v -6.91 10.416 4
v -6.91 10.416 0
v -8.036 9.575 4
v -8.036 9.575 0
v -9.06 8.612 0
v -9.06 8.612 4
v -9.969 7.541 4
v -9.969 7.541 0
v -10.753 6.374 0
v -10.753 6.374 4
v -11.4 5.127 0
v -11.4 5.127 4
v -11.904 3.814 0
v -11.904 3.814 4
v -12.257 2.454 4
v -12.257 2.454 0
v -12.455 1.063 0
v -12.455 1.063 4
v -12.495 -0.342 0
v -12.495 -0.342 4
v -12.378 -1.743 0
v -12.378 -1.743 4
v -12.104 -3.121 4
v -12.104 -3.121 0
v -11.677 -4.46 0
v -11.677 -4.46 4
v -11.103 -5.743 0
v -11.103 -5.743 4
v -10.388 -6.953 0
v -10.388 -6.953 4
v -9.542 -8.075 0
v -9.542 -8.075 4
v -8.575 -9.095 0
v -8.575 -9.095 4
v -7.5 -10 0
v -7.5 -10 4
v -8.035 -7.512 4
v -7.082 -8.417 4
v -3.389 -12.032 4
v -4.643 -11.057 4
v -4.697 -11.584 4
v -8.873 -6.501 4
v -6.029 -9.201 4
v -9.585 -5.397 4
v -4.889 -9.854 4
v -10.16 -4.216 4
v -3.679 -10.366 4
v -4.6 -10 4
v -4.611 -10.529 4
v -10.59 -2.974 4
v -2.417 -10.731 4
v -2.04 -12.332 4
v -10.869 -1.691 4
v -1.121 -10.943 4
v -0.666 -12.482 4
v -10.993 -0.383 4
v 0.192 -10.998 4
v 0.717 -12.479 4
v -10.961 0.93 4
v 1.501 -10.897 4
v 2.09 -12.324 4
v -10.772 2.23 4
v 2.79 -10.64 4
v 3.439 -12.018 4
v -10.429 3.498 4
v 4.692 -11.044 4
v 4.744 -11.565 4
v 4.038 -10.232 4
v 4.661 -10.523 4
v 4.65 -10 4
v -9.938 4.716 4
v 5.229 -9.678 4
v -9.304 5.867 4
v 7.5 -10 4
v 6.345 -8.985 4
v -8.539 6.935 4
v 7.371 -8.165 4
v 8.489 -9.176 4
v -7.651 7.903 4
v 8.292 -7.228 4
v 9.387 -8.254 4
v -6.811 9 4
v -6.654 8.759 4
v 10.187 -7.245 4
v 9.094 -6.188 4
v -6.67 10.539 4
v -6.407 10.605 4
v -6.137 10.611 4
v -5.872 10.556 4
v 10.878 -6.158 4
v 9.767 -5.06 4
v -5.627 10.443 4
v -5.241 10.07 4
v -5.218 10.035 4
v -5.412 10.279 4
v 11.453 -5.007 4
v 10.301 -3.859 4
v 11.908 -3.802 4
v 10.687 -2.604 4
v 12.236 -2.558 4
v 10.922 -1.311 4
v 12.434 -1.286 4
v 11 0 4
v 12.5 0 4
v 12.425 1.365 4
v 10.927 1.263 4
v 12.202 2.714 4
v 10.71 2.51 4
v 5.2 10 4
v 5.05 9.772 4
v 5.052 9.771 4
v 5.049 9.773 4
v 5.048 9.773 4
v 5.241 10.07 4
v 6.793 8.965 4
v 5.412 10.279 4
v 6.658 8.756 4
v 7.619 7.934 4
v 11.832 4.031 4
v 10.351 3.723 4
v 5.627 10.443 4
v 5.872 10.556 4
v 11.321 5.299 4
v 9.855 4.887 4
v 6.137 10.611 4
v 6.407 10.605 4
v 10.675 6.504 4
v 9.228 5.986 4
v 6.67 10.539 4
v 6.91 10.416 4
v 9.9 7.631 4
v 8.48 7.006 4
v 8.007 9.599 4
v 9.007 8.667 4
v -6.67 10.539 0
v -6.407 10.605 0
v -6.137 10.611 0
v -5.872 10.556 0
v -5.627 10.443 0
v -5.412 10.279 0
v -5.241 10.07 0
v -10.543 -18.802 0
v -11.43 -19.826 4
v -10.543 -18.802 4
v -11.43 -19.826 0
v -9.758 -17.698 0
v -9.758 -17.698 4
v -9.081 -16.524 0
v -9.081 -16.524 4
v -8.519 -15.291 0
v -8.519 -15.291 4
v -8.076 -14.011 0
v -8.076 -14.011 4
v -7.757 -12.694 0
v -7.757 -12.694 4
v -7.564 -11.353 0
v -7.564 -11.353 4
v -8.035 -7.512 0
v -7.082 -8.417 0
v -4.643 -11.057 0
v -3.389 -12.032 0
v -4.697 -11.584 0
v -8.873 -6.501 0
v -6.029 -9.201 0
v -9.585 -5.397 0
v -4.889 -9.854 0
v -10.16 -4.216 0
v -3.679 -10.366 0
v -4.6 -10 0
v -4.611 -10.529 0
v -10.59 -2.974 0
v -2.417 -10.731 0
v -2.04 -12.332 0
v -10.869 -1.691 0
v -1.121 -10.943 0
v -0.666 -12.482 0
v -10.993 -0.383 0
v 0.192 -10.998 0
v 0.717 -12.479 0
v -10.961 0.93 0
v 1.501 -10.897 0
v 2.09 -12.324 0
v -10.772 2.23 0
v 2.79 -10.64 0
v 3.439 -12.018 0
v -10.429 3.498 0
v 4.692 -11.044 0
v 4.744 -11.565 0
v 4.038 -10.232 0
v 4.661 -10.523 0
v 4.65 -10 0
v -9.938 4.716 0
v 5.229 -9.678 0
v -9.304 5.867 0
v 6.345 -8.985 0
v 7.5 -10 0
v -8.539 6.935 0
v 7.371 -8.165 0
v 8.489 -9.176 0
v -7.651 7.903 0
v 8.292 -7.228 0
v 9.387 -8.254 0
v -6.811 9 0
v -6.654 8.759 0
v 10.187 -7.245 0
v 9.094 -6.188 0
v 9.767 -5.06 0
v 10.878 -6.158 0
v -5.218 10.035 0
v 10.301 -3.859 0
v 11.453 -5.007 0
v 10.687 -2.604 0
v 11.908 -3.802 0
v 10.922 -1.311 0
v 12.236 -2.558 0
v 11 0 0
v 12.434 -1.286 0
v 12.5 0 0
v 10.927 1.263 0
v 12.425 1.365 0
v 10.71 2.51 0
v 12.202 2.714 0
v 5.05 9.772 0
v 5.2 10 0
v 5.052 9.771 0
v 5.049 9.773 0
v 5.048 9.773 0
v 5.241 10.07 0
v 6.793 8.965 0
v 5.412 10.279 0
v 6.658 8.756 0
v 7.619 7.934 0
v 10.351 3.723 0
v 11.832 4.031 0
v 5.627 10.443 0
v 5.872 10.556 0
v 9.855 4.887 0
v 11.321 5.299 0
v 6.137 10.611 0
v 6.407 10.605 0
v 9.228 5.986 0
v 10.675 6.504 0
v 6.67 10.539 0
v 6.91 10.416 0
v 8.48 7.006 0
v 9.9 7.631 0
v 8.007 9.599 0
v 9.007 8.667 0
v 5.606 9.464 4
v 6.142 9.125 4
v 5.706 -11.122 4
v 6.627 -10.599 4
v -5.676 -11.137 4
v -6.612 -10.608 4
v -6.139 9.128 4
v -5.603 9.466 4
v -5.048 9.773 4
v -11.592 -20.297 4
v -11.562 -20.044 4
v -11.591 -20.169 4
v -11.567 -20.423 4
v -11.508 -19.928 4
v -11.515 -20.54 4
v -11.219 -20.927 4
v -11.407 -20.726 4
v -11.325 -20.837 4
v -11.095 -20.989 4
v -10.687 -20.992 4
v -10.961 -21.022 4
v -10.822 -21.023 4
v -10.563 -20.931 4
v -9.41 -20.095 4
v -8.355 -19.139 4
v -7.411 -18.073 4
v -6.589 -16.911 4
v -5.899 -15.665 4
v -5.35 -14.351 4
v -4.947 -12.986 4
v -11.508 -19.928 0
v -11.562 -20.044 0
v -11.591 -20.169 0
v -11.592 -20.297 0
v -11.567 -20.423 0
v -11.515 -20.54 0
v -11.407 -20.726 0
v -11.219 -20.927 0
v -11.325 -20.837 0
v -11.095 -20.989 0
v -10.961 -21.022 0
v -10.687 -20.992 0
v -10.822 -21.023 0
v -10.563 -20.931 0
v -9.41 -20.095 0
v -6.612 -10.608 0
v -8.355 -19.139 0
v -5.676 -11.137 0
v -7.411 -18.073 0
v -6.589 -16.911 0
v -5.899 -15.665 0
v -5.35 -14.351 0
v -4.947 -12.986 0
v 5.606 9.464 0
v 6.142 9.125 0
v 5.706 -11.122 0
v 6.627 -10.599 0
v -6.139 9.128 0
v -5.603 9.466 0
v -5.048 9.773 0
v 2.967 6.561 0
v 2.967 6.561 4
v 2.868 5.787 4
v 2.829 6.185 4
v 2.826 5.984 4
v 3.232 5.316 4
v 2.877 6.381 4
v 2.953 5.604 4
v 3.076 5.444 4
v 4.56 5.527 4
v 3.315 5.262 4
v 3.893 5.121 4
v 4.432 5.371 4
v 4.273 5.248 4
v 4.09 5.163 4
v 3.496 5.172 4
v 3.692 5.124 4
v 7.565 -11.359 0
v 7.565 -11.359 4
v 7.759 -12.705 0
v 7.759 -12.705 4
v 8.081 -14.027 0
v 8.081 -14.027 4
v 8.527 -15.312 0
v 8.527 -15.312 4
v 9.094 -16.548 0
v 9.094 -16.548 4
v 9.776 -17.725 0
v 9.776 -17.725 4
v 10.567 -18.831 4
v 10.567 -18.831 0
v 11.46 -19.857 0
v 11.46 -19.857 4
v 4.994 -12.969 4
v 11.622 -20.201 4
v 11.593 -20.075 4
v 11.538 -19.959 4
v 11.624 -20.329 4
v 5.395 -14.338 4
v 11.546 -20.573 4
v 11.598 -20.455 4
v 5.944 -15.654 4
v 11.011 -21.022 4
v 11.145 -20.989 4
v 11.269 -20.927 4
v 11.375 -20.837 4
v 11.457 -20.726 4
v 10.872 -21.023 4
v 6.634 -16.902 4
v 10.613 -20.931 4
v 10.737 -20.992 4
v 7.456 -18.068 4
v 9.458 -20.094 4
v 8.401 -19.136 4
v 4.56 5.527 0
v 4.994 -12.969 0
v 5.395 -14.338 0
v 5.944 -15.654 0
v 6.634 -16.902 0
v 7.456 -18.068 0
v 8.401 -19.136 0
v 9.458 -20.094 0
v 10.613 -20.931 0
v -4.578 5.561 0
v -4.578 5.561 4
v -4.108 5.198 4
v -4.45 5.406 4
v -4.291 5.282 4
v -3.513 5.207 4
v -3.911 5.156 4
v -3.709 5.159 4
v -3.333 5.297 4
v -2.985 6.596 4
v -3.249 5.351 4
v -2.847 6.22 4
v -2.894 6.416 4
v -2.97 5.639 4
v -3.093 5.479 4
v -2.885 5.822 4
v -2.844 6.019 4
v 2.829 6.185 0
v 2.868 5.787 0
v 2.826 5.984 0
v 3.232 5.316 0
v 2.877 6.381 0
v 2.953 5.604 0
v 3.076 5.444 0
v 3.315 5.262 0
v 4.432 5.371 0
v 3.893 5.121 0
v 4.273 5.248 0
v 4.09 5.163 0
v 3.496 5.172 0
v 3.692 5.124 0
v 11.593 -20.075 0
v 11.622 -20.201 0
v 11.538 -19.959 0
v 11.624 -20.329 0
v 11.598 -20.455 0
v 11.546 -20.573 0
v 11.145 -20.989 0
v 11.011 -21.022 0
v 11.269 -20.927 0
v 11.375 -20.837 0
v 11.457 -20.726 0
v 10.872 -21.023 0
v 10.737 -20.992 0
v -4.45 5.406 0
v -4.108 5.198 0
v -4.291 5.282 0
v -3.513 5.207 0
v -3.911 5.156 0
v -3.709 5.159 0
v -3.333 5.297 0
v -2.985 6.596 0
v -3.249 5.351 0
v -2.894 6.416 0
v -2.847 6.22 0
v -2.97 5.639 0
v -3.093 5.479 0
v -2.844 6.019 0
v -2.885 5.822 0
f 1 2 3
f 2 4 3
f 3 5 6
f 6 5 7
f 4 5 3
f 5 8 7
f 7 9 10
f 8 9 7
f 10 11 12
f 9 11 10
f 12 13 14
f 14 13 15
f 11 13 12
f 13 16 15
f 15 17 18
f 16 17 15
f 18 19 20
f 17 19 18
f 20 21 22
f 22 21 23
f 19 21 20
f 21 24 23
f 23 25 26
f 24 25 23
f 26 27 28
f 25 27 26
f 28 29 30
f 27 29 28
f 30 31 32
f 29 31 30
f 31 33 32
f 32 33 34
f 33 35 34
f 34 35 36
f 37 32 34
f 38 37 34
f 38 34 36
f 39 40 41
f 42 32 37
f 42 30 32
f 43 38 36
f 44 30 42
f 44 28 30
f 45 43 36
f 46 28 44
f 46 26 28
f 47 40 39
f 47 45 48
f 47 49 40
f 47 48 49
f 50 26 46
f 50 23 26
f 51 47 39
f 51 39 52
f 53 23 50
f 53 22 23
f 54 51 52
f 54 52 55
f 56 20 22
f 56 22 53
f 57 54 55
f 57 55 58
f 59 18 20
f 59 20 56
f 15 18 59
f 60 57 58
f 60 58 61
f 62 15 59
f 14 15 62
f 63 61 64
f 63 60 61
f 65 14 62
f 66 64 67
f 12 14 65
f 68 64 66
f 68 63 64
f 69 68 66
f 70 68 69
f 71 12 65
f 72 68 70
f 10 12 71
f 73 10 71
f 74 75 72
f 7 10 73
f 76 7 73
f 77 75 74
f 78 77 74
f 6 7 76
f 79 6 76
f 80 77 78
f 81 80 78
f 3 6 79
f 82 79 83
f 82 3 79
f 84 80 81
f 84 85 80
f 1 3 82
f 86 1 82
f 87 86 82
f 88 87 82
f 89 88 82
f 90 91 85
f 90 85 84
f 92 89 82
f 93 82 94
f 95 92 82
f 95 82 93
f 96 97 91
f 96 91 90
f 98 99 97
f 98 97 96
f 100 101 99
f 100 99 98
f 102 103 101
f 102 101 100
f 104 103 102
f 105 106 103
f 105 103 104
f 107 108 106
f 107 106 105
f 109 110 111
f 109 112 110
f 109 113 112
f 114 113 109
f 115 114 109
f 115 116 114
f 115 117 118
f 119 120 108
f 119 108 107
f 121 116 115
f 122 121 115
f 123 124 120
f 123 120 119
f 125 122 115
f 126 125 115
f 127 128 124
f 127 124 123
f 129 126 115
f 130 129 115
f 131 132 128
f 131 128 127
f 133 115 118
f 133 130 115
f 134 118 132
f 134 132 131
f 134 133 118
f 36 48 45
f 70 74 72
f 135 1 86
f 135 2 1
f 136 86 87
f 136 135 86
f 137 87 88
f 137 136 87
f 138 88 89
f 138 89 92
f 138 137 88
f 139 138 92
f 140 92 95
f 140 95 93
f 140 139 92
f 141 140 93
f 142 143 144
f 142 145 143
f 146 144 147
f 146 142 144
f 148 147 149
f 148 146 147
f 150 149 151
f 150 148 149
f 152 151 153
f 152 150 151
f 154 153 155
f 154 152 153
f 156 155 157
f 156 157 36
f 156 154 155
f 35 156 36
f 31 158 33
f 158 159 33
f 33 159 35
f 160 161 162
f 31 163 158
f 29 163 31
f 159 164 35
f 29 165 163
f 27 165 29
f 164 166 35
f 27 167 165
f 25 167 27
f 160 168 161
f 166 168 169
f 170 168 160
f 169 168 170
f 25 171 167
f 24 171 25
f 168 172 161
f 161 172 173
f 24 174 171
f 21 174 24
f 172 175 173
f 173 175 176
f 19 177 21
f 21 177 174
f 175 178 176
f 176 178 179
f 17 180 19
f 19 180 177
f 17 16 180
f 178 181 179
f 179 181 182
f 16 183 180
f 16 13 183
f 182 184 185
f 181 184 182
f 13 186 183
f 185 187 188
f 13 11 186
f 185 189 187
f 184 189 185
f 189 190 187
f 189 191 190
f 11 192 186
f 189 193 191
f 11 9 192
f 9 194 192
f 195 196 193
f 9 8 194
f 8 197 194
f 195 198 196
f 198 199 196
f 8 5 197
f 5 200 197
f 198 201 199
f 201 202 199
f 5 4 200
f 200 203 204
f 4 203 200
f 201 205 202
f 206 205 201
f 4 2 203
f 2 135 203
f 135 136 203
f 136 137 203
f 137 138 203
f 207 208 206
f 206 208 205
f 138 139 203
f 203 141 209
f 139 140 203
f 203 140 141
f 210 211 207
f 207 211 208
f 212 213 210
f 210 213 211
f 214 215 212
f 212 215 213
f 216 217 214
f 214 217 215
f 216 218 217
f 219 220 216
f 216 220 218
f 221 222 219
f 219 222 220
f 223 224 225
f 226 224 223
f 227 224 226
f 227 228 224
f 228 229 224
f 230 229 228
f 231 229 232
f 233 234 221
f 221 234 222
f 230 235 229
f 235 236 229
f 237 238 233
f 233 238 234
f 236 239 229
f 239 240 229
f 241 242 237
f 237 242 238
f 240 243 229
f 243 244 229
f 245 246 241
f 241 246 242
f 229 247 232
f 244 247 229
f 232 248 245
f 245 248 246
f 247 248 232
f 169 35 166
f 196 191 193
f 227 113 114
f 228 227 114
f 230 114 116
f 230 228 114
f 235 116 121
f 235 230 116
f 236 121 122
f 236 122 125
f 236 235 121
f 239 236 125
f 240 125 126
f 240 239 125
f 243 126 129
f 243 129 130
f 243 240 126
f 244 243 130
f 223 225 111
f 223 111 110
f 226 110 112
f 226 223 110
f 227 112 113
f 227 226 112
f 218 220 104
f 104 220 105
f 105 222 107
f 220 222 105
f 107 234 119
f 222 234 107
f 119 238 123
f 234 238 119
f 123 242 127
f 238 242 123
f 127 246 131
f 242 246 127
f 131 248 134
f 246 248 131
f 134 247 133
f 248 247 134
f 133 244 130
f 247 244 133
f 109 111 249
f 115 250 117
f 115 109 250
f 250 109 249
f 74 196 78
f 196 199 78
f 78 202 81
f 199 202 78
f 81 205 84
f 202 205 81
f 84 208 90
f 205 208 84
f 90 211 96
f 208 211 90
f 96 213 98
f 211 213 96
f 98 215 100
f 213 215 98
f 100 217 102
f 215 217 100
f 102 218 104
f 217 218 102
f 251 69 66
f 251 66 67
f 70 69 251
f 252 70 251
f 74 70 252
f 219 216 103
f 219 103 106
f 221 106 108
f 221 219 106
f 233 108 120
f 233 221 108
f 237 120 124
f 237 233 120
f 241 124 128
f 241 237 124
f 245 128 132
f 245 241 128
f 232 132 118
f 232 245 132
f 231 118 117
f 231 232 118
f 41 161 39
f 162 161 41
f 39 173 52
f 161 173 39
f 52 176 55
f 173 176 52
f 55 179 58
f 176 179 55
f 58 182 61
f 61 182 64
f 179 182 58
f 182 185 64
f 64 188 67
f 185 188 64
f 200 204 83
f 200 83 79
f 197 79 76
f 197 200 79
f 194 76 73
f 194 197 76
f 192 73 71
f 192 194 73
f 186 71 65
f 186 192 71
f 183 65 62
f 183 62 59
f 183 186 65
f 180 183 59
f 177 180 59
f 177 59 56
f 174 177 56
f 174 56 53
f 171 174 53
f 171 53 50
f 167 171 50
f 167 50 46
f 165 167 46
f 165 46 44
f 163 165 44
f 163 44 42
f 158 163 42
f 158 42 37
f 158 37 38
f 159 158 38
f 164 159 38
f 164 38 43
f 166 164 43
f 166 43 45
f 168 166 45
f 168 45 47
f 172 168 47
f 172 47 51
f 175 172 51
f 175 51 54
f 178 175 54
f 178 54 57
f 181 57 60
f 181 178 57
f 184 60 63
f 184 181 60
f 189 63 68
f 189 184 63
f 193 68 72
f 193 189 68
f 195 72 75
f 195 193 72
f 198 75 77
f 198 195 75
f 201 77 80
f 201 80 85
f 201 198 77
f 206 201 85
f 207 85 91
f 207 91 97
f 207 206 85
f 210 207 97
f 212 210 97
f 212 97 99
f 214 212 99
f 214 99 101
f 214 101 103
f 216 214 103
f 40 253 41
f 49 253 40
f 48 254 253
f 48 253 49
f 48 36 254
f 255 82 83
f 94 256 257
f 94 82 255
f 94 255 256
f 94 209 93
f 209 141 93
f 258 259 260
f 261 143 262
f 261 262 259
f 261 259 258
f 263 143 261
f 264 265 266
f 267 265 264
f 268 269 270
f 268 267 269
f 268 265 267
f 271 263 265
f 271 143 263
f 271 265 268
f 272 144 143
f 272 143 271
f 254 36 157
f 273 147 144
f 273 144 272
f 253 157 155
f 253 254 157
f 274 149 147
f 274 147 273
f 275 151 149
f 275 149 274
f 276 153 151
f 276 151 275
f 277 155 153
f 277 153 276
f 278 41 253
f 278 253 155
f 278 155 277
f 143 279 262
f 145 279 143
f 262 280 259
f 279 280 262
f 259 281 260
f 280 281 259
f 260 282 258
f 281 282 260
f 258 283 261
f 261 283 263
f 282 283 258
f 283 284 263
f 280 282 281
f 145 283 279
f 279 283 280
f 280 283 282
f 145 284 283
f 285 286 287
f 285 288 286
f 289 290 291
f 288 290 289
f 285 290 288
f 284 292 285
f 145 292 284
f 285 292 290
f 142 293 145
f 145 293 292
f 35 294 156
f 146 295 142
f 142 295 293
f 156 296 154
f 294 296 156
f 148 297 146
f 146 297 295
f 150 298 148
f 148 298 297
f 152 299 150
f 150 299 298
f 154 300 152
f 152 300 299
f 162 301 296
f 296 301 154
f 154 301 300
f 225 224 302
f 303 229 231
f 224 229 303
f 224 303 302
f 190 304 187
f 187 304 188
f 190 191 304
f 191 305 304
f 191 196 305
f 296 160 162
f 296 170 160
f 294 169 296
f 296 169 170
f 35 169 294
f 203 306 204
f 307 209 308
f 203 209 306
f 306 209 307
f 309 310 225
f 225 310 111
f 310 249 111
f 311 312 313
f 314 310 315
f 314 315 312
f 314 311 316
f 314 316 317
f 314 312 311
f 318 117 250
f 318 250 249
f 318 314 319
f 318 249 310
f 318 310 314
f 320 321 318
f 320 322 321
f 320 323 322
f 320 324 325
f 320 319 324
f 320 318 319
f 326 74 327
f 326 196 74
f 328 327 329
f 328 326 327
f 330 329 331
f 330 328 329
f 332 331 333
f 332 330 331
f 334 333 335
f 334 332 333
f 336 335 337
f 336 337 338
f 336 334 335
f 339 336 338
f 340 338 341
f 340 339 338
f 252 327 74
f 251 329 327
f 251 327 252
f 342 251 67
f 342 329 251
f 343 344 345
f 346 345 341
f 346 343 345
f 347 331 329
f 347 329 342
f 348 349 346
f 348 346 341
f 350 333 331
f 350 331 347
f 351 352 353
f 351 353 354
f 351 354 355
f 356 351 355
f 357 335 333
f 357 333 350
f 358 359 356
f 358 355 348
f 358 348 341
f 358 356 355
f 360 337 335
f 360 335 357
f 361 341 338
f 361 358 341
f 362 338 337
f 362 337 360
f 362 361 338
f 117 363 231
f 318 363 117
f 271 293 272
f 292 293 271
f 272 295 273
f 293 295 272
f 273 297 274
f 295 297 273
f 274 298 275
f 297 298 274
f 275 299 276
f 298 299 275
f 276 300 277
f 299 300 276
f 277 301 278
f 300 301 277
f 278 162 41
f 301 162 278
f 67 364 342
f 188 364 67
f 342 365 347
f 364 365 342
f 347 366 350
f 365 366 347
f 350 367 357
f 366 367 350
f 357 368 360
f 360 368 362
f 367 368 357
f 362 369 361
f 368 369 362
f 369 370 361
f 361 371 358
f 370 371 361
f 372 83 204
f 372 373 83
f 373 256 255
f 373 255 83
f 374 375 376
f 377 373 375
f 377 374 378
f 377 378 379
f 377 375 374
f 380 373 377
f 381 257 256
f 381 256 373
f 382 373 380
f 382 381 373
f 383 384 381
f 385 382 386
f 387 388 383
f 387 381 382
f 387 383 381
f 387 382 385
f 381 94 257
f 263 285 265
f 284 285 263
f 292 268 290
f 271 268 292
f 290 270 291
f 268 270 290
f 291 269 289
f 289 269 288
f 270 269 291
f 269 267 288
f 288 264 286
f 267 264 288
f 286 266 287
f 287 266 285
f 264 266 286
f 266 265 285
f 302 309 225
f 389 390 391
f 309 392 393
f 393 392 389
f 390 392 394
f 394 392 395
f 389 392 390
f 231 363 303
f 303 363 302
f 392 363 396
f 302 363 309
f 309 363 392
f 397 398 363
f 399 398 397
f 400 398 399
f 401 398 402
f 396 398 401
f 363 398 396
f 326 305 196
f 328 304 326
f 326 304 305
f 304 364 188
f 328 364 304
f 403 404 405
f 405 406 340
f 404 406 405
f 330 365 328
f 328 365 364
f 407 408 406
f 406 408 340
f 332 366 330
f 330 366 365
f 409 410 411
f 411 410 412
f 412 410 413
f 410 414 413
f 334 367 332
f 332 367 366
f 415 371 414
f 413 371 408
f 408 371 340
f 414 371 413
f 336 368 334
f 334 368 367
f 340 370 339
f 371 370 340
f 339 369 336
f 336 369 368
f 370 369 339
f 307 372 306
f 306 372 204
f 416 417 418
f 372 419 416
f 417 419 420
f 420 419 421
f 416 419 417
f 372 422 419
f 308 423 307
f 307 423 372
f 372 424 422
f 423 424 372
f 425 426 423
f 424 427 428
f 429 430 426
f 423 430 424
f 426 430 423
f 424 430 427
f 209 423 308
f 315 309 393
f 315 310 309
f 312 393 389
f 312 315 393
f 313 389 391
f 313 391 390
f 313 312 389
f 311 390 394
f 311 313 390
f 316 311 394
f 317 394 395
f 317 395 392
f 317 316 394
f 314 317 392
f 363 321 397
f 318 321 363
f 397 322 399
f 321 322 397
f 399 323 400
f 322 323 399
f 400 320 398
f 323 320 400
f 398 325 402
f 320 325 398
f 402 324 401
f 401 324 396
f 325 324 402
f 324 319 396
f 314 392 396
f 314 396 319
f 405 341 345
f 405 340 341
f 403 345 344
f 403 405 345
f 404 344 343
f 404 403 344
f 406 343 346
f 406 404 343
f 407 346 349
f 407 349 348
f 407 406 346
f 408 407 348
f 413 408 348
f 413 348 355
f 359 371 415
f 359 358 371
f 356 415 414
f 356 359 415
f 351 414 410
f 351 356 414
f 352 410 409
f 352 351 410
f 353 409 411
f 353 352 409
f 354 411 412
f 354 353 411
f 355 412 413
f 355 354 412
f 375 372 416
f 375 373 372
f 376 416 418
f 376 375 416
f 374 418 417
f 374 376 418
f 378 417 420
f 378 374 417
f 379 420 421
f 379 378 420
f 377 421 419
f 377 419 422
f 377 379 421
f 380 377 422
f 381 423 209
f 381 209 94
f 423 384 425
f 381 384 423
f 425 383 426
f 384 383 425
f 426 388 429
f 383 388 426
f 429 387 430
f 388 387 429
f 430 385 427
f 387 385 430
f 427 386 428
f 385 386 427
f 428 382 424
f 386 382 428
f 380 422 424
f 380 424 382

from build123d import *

# Parameters (mm, degrees)
CYLINDER_R        = 12.5
CYLINDER_DEPTH    = 4
CYLINDER001_R     = 11
CYLINDER001_DEPTH = 4
CYLINDER002_W     = 11
CYLINDER002_H     = 4
CYLINDER002_ANGLE = 66
BOX_W             = 5
BOX_H             = 1.9
BOX_DEPTH         = 4
BOX001_W          = 5
BOX001_H          = 1.9
BOX001_DEPTH      = 4
CYLINDER003_W     = 13
CYLINDER003_H     = 4
CYLINDER003_ANGLE = 60
CYLINDER004_W     = 14.25
CYLINDER004_H     = 4
CYLINDER004_ANGLE = 46
CYLINDER005_W     = 13
CYLINDER005_H     = 4
CYLINDER005_ANGLE = 60
CYLINDER006_W     = 14.25
CYLINDER006_H     = 4
CYLINDER006_ANGLE = 46
FILLET_R          = 0.9
FILLET001_R       = 0.6
FILLET002_R       = 1.2


with BuildPart() as part:
    # Cylinder → Cylinder (join)
    with BuildSketch(Plane.XY):
        Circle(CYLINDER_R)
    extrude(amount=CYLINDER_DEPTH)

    # Cylinder001 → Cylinder001 (cut)
    with BuildSketch(Plane.XY):
        Circle(CYLINDER001_R)
    extrude(amount=CYLINDER001_DEPTH, mode=Mode.SUBTRACT)

    # Cylinder002 → Cylinder002 (revolve, cut)
    with BuildSketch(Plane(origin=(0, 2, 0), x_dir=(0.544639035, 0.8386705679, 0), z_dir=(0.8386705679, -0.544639035, 0))):
        with Locations((5.5, 2)):
            Rectangle(CYLINDER002_W, CYLINDER002_H)
    revolve(axis=Axis((0, 2, 0), (0, 0, 1)), revolution_arc=CYLINDER002_ANGLE, mode=Mode.SUBTRACT)

    # Box → Box (join)
    with BuildSketch(Plane(origin=(5.2, 10, 0), x_dir=(-0.544639035, -0.8386705679, 0), z_dir=(0, 0, 1))):
        with Locations((2.5, 0.95)):
            Rectangle(BOX_W, BOX_H)
    extrude(amount=BOX_DEPTH)

    # Box001 → Box001 (join)
    with BuildSketch(Plane(origin=(-6.811, 9, 0), x_dir=(0.544639035, -0.8386705679, 0), z_dir=(0, 0, 1))):
        with Locations((2.5, 0.95)):
            Rectangle(BOX001_W, BOX001_H)
    extrude(amount=BOX001_DEPTH)

    # Cylinder003 → Cylinder003 (revolve)
    with BuildSketch(Plane(origin=(17.65, -10, 0), x_dir=(-1, 0, 0), z_dir=(0, 1, 0))):
        with Locations((6.5, 2)):
            Rectangle(CYLINDER003_W, CYLINDER003_H)
    revolve(axis=Axis((17.65, -10, 0), (0, 0, 1)), revolution_arc=CYLINDER003_ANGLE)

    # Cylinder004 → Cylinder004 (revolve, cut)
    with BuildSketch(Plane(origin=(21.75, -10, 0), x_dir=(-1, 0, 0), z_dir=(0, 1, 0))):
        with Locations((7.125, 2)):
            Rectangle(CYLINDER004_W, CYLINDER004_H)
    revolve(axis=Axis((21.75, -10, 0), (0, 0, 1)), revolution_arc=CYLINDER004_ANGLE, mode=Mode.SUBTRACT)

    # Cylinder005 → Cylinder005 (revolve)
    with BuildSketch(Plane(origin=(-17.6, -10, 0), x_dir=(0.5, -0.8660254038, 0), z_dir=(-0.8660254038, -0.5, 0))):
        with Locations((6.5, 2)):
            Rectangle(CYLINDER005_W, CYLINDER005_H)
    revolve(axis=Axis((-17.6, -10, 0), (0, 0, 1)), revolution_arc=CYLINDER005_ANGLE)

    # Cylinder006 → Cylinder006 (revolve, cut)
    with BuildSketch(Plane(origin=(-21.75, -10, 0), x_dir=(0.6946583705, -0.7193398003, 0), z_dir=(-0.7193398003, -0.6946583705, 0))):
        with Locations((7.125, 2)):
            Rectangle(CYLINDER006_W, CYLINDER006_H)
    revolve(axis=Axis((-21.75, -10, 0), (0, 0, 1)), revolution_arc=CYLINDER006_ANGLE, mode=Mode.SUBTRACT)

    # Fillet
    fillet_edges = [part.edges().sort_by_distance(p)[0] for p in [
        (-4.087805, 4.806647, 2),
        (-2.494331, 5.841461, 2),
        (4.070279, 4.771833, 2),
        (2.476805, 5.806647, 2),
    ]]
    fillet(fillet_edges, radius=FILLET_R)

    # Fillet001
    fillet001_edges = [part.edges().sort_by_distance(p)[0] for p in [
        (11.15, -21.25833, 2),
        (11.774728, -20.176269, 2),
        (-11.742835, -20.144907, 2),
        (-11.1, -21.25833, 2),
    ]]
    fillet(fillet001_edges, radius=FILLET001_R)

    # Fillet002
    fillet002_edges = [part.edges().sort_by_distance(p)[0] for p in [
        (-5.868544, 11.036765, 2),
        (5.868544, 11.036765, 2),
    ]]
    fillet(fillet002_edges, radius=FILLET002_R)


solid = part.part
